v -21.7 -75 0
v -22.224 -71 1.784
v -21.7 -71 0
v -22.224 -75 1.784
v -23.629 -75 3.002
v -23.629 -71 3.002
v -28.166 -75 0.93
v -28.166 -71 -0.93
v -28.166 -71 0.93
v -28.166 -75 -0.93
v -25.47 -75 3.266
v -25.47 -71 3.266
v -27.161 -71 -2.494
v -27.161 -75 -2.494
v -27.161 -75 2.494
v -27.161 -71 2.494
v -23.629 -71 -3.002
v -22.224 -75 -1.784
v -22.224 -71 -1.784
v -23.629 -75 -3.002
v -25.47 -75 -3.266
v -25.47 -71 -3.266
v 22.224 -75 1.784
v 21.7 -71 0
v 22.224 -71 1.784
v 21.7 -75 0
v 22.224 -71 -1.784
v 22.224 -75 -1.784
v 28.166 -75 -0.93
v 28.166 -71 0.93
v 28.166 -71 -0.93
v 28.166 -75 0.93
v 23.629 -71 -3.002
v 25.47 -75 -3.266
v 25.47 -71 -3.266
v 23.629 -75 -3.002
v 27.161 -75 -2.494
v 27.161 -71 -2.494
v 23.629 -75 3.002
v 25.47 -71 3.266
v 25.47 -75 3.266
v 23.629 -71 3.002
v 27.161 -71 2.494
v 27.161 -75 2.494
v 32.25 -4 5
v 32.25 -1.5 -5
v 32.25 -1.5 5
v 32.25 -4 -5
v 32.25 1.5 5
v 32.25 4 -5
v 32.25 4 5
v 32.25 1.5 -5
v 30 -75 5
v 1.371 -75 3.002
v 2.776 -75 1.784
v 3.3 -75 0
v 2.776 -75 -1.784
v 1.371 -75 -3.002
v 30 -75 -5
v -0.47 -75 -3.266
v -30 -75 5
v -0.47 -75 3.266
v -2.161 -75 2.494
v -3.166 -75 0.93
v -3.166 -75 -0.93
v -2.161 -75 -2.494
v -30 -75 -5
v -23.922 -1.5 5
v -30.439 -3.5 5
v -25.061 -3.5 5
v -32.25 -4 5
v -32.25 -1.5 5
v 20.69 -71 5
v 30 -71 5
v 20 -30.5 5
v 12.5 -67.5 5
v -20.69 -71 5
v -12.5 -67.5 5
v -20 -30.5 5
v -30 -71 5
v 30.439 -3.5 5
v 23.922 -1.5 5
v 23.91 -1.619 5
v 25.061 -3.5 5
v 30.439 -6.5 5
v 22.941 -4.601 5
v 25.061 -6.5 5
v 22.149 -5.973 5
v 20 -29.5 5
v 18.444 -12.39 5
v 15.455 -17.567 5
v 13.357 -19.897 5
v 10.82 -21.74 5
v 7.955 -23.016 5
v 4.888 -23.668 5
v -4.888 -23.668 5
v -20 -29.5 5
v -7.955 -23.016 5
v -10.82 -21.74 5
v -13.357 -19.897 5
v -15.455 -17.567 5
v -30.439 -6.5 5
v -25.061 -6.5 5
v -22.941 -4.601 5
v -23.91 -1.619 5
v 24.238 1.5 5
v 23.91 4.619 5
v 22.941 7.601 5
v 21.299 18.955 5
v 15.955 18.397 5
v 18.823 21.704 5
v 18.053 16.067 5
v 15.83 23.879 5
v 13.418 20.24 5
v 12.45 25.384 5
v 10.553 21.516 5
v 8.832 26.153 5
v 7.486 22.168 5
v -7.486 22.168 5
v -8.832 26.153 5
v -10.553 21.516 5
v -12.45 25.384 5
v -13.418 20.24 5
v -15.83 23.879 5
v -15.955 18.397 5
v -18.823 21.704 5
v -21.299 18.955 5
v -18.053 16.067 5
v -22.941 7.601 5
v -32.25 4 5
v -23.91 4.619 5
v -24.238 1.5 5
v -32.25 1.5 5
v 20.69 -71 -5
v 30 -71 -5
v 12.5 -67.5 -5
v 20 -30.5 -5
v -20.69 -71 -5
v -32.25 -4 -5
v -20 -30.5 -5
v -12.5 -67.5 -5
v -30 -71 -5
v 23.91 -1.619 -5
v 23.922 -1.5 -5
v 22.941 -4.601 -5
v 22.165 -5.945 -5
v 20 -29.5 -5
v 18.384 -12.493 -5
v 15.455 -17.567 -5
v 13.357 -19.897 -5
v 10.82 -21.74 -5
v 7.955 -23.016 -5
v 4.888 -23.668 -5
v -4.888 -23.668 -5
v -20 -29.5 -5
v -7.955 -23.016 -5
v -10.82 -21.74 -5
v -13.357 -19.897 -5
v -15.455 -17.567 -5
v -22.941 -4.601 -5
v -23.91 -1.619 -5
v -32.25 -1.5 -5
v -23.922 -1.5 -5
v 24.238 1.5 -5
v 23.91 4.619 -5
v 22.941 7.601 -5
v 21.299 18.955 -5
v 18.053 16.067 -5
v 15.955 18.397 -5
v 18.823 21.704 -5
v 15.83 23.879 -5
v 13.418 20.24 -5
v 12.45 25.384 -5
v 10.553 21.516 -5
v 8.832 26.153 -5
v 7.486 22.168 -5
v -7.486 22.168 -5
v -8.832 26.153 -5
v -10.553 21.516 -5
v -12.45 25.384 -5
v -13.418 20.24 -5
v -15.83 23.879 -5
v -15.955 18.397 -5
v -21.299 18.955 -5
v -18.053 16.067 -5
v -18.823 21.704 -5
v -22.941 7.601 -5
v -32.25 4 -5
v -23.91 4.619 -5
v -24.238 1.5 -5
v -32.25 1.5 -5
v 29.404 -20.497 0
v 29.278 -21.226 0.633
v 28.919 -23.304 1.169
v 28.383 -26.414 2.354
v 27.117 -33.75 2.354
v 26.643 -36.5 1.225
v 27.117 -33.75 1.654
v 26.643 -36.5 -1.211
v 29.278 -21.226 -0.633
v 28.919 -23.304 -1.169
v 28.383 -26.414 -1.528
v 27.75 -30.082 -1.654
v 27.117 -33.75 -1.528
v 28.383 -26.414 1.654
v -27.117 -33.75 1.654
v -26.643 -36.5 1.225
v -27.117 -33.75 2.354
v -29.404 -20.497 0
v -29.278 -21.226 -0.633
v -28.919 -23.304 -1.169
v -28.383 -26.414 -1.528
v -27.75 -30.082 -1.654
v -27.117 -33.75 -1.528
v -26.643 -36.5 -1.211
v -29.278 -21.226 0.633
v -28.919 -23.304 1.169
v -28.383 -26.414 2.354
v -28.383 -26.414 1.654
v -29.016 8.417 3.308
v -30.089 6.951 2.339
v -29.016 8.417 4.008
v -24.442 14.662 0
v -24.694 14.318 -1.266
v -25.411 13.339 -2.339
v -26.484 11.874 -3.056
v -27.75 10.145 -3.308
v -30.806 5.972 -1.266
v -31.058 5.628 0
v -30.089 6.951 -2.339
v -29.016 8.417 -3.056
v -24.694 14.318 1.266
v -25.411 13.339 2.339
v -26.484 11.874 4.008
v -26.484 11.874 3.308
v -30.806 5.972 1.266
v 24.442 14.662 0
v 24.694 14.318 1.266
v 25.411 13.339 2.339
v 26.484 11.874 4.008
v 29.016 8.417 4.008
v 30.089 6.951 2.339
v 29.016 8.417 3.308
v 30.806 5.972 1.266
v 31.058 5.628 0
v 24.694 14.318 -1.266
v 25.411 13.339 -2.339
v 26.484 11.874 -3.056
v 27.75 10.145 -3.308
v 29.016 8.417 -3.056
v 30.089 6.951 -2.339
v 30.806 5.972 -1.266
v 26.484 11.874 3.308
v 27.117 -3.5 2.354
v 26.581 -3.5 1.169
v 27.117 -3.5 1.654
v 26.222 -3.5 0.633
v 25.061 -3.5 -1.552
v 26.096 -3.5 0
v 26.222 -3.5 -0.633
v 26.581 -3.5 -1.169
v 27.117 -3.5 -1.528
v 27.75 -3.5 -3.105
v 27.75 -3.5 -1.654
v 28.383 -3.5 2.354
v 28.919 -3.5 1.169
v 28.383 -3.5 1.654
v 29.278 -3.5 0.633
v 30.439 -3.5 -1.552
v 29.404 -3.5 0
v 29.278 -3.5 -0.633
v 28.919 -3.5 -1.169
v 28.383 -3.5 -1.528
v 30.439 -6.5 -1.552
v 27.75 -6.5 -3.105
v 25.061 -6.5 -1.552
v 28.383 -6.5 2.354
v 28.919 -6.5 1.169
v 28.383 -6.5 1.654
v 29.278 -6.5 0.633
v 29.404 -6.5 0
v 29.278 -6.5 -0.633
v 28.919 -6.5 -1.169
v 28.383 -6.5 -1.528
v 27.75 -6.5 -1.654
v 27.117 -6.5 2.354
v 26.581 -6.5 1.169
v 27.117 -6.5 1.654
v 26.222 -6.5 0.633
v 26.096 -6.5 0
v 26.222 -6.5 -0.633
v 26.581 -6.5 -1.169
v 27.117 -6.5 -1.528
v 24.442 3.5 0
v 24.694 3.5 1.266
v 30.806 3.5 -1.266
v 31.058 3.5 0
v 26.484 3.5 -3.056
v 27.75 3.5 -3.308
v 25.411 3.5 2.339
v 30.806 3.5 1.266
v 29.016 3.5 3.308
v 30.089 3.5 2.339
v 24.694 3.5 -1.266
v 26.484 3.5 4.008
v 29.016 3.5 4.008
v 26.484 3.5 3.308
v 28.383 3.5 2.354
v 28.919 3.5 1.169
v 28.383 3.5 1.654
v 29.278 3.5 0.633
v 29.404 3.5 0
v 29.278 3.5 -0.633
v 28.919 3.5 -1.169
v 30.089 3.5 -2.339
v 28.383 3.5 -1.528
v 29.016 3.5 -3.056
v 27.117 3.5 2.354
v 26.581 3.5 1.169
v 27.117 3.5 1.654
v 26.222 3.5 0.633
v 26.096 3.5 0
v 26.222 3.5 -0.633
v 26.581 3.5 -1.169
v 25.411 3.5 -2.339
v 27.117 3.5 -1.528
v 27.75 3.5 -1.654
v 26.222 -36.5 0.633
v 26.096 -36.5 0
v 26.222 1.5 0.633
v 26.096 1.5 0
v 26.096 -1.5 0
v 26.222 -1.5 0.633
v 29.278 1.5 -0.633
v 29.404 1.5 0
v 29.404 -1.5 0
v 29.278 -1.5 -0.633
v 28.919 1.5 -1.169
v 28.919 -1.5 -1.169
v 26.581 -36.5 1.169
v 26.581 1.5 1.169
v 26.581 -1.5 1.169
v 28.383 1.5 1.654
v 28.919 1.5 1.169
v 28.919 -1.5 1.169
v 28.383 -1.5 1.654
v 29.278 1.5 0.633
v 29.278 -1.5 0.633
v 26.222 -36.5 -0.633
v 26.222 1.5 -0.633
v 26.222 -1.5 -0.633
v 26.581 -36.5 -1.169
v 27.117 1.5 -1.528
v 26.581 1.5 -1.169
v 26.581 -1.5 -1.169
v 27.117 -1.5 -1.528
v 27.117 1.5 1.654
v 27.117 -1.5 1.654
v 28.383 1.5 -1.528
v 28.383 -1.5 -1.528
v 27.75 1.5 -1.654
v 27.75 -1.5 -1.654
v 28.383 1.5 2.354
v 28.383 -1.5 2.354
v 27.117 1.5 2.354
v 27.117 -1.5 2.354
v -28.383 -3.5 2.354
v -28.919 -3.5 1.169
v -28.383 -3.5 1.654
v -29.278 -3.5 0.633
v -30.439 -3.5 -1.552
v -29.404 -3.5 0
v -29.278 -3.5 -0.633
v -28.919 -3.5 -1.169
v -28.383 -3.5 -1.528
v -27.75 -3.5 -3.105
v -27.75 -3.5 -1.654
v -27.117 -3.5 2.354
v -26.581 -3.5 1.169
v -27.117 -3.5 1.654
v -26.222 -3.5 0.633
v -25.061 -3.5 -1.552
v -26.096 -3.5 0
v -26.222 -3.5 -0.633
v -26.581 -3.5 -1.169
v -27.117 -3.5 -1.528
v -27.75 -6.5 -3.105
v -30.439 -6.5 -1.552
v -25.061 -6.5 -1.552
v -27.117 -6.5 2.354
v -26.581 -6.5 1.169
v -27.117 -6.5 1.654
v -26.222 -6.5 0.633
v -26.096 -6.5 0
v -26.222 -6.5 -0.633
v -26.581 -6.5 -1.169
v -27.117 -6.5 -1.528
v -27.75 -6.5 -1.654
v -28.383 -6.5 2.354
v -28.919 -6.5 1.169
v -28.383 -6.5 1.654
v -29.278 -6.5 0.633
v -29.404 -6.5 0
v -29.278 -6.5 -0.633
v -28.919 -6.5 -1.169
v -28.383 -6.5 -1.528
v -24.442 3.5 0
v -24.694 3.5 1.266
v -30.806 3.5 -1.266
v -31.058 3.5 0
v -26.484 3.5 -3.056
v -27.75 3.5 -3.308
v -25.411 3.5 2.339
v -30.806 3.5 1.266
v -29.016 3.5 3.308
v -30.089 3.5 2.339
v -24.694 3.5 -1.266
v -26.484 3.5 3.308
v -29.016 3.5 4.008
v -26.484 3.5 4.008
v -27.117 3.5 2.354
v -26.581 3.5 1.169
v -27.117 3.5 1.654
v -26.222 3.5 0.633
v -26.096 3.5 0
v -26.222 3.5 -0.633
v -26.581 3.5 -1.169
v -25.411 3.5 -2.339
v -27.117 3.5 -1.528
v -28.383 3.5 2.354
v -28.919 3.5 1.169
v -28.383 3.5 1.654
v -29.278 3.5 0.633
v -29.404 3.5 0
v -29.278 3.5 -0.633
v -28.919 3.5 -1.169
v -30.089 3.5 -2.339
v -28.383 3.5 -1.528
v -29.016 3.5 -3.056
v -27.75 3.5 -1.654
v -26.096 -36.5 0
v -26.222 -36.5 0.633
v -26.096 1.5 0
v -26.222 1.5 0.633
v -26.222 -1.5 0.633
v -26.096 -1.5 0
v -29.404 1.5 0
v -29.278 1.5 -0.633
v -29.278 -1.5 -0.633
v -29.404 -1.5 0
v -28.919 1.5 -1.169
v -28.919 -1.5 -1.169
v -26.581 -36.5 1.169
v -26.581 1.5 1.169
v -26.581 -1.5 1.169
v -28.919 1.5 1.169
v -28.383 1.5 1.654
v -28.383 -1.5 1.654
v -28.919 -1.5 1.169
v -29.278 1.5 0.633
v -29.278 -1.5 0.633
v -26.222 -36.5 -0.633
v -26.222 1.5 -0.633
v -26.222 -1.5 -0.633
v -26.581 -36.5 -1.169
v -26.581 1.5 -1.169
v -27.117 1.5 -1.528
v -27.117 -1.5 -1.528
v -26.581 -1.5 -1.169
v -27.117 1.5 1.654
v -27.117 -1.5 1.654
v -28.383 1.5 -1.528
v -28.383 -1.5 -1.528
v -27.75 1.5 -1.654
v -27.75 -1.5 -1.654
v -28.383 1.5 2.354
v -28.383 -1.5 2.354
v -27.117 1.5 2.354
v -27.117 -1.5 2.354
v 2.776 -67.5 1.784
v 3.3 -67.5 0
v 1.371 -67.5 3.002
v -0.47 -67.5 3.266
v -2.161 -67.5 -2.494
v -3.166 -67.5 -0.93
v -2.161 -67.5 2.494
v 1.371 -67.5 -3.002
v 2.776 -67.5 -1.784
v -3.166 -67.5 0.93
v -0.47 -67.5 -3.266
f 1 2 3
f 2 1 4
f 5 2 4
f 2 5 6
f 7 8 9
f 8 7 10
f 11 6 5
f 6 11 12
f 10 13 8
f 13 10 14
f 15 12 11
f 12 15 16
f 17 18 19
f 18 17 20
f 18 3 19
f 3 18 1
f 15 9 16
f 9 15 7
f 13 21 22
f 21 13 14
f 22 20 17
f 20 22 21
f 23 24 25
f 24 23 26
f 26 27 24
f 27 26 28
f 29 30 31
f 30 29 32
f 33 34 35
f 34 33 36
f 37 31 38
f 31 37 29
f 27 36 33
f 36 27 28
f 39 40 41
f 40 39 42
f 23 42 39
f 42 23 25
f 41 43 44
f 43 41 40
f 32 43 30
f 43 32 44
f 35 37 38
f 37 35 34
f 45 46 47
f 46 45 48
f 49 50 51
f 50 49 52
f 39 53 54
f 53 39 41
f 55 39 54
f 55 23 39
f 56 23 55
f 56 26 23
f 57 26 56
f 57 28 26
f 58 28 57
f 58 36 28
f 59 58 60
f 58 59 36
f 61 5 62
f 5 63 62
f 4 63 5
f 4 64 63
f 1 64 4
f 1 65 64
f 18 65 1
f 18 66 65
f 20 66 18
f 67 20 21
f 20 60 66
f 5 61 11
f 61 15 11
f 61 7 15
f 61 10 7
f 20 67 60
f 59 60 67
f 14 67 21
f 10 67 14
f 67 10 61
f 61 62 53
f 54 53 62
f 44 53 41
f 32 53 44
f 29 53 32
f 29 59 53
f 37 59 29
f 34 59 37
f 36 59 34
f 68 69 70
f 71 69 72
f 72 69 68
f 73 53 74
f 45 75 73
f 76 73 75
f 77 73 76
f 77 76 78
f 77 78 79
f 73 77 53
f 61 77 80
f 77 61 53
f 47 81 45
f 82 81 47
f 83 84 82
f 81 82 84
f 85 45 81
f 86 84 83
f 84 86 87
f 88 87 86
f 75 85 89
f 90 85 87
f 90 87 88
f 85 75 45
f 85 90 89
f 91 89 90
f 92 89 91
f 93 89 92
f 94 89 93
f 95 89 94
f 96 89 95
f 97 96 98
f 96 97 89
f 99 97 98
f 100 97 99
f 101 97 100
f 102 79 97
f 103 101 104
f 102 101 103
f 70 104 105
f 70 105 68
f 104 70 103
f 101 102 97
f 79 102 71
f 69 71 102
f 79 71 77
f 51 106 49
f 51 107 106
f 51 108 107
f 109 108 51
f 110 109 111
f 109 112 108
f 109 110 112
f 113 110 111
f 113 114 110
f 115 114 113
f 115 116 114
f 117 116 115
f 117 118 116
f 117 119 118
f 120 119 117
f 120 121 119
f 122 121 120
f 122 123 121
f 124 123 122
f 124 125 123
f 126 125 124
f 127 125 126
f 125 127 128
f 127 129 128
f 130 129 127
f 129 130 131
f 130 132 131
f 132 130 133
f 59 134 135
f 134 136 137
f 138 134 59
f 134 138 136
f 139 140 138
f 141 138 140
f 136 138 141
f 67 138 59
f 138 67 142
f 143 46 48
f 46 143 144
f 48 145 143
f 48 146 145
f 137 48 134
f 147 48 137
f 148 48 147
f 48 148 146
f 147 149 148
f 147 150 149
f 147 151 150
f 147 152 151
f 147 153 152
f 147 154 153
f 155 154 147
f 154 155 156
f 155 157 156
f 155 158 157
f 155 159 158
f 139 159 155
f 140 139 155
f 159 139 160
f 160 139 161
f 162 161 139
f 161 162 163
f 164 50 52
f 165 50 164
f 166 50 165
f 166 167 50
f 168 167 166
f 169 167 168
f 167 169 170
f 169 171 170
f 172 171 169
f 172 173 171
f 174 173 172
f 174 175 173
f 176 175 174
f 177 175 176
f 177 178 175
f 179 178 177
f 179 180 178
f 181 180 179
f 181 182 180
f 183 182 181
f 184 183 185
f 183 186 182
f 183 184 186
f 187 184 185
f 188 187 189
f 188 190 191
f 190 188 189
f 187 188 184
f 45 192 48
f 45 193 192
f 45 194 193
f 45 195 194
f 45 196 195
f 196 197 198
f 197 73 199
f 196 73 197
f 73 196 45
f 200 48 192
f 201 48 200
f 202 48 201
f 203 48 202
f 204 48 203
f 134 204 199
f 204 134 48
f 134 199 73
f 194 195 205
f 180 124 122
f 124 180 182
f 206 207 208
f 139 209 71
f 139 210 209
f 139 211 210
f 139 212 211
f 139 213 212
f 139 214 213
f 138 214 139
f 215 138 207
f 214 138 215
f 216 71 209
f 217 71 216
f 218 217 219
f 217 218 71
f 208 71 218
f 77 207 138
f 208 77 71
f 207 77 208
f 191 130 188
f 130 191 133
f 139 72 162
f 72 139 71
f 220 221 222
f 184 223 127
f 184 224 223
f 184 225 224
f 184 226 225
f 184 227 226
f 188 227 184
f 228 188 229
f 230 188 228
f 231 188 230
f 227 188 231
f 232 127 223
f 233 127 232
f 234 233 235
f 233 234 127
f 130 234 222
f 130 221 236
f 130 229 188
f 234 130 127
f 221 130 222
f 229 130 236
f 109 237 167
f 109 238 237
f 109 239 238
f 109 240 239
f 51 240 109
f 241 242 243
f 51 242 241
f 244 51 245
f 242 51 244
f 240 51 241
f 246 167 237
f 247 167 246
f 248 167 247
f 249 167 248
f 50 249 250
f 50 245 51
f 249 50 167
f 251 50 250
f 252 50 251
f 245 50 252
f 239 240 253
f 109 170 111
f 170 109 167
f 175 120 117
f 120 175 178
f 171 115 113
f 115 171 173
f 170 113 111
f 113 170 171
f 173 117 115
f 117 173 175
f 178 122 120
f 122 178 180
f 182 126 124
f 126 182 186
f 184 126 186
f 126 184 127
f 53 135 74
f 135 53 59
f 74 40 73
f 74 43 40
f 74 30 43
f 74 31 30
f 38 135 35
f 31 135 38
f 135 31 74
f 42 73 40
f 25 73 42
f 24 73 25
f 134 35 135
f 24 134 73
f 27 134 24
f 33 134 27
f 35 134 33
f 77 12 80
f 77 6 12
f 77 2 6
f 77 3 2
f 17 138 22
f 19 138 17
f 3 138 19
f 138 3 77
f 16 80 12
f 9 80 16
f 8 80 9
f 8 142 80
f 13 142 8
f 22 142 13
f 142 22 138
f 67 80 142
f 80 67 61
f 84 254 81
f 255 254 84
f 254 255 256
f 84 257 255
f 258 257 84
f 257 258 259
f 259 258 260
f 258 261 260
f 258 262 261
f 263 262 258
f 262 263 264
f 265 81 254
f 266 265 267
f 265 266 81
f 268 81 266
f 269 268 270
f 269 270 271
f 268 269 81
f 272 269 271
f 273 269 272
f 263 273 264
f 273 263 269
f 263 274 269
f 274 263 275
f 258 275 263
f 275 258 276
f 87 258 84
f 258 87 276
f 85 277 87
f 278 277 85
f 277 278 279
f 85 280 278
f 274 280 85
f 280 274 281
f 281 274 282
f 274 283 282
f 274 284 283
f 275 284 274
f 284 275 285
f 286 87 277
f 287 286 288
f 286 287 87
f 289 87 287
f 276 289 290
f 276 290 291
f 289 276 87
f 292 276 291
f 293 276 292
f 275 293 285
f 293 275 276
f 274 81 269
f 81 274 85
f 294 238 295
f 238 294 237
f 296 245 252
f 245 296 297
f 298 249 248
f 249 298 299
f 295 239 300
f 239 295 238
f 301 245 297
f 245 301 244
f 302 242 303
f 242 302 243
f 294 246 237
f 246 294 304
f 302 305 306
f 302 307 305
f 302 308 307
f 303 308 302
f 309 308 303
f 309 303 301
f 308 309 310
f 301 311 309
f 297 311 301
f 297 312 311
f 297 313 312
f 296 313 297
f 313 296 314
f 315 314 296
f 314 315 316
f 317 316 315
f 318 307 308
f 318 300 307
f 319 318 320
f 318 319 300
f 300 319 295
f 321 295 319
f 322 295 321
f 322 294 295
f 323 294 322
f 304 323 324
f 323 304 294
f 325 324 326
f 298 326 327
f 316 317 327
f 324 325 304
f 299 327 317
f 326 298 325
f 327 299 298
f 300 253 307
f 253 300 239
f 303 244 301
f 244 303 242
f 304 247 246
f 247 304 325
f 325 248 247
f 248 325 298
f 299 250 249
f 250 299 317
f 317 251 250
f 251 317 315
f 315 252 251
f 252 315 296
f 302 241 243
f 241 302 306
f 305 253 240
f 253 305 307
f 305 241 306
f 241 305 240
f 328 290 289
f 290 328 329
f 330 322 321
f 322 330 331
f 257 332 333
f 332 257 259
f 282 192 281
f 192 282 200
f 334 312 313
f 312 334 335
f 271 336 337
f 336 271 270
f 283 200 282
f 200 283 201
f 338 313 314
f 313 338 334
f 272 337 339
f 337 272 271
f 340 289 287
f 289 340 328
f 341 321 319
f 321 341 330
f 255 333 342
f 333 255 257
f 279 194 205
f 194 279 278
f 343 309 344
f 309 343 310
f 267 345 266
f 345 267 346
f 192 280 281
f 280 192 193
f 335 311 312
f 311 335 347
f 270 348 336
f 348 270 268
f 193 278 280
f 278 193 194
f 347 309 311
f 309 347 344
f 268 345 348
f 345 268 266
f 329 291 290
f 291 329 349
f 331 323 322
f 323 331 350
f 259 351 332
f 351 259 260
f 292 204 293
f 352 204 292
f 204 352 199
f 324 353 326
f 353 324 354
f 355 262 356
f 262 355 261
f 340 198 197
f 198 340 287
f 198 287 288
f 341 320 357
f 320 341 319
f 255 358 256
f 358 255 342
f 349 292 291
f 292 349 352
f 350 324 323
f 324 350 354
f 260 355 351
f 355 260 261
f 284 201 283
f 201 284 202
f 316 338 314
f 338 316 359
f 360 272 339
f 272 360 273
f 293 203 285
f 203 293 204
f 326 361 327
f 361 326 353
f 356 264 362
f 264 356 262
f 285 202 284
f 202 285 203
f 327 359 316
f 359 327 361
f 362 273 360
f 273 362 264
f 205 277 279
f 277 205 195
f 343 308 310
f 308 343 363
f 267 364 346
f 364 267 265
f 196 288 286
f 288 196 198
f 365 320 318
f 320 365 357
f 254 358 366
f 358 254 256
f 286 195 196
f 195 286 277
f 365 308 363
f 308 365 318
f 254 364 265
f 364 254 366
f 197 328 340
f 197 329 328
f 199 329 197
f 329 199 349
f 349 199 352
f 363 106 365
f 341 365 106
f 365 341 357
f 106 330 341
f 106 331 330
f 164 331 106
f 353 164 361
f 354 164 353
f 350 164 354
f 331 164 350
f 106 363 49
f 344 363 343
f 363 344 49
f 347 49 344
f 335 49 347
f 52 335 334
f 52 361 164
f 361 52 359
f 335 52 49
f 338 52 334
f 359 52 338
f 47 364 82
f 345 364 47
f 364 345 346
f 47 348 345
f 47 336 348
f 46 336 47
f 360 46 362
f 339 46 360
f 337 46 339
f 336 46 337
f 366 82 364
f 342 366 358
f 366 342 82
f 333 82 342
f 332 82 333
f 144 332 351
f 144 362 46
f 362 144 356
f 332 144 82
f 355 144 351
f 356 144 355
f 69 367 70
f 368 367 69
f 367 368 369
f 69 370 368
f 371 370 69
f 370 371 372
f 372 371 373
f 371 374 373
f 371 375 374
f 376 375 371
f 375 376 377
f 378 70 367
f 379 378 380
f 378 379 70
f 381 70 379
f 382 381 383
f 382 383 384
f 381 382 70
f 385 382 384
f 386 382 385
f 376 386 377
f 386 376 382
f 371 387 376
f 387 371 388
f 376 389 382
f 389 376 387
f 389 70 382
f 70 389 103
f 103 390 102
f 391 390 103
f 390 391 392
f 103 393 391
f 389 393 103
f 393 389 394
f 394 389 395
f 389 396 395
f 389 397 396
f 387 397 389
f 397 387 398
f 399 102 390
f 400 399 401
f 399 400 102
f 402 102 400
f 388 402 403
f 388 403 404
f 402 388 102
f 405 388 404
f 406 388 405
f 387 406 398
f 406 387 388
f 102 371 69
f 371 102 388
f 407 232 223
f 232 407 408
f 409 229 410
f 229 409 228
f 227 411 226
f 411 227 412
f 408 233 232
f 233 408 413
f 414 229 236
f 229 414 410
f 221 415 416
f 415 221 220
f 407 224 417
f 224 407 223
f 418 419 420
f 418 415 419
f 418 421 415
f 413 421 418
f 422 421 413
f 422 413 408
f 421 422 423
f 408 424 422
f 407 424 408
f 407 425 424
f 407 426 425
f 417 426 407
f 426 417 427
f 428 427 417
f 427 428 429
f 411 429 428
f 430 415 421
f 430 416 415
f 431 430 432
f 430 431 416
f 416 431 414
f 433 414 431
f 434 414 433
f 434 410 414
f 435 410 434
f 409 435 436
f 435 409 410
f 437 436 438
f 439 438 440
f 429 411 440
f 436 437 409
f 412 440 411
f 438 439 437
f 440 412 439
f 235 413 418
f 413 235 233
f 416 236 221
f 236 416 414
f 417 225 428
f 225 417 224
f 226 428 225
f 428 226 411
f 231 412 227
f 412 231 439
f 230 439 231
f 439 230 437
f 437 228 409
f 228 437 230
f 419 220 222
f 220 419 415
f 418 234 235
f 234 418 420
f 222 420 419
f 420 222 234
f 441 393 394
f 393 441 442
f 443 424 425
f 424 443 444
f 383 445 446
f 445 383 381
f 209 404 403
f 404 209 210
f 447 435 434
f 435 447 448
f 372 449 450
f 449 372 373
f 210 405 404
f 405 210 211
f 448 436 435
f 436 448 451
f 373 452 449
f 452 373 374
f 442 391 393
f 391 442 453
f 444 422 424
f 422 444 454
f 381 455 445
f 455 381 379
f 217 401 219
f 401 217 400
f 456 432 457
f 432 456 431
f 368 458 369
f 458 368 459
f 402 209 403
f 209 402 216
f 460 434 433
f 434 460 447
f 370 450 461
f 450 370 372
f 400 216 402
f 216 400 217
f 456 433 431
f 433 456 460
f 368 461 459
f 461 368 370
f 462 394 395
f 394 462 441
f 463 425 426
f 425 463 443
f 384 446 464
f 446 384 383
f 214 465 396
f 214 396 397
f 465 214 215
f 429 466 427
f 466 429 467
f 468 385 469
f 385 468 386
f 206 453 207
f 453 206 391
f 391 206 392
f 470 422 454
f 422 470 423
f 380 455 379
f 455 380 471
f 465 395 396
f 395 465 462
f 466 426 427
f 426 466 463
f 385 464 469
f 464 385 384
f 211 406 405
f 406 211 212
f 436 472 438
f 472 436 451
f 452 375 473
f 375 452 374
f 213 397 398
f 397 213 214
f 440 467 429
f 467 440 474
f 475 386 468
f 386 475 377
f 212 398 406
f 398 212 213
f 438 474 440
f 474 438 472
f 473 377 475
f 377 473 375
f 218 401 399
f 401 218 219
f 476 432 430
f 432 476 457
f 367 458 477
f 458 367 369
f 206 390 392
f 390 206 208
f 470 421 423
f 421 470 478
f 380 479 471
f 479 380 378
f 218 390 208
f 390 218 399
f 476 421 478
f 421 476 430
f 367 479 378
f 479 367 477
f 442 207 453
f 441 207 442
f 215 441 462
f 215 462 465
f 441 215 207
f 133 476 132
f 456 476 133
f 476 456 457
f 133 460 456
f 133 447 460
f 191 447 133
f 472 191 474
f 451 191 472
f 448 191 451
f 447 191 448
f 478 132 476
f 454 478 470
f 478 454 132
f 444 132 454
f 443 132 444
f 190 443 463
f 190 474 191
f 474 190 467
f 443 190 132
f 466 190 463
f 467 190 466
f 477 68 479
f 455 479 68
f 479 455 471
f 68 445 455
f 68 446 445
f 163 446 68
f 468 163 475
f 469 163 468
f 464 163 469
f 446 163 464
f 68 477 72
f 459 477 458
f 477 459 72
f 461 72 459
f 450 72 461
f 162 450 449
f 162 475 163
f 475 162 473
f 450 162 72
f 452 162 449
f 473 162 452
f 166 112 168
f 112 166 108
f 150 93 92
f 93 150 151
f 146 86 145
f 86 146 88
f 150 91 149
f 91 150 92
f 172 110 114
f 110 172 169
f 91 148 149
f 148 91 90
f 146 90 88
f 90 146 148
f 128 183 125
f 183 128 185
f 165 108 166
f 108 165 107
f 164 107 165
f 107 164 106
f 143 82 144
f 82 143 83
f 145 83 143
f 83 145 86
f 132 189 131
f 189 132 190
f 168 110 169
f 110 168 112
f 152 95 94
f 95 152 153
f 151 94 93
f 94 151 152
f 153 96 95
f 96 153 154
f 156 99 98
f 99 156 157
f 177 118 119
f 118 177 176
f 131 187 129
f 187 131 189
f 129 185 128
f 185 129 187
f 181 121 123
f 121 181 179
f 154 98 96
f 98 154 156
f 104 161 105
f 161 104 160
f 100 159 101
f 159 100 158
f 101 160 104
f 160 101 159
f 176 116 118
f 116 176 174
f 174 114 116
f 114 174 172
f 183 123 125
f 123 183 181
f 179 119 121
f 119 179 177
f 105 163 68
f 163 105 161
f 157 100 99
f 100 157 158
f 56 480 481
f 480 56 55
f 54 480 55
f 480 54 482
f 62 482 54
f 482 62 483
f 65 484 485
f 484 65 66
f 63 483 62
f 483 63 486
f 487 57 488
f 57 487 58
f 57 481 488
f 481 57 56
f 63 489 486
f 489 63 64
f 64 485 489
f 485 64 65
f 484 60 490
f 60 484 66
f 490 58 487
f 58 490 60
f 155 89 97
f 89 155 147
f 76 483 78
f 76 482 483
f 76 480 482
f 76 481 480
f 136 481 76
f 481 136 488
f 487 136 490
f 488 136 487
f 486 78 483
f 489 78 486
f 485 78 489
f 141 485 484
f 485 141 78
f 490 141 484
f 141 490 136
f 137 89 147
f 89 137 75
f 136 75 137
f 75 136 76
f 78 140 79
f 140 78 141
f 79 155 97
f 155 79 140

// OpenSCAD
// Static mounts for a HeNe tube
// (c) R Bowman 2017, released under CERN open hardware license

use <utilities.scad>;

tube_d = 44.5; //diameter of the tube we want to clamp

module tube_cutout(d=tube_d, h=999, center=true, roc=15, dr=1.5){
    // Something between a hexagon and a circle...
    r = d/2 - roc;
    echo((r+dr - r*cos(60))/sin(60));
    hull(){
        for(a=[0,120,-120]) rotate(a) reflect([1,0,0]){
            translate([(r+dr - r*cos(60))/sin(60),tube_d/2-roc, 0]) cylinder(r=roc, h=h, center=center);
        }
    }
}

t = 10;
flat = t;

difference(){
    union(){
        hull(){
            s = (tube_d + 8)/tube_d;
            scale([s,s,1]) tube_cutout(d=tube_d, h=t);
            cube([tube_d + flat*2,8,t],center=true);
            translate([0,-75+1,0]) cube([40,2,t], center=true);
        }
        hull() reflect([1,0,0]){
            translate([-25-t/2,-75,-t/2]) cube([t,4,t]);//rotate([90,0,0]) cylinder(d=t, h=4);
        }
    }
    
    tube_cutout();
    reflect([1,0,0]) translate([tube_d/2+flat/2+0.5, 0,0]) pinch_y(3, top_access=true, screw_l=20);
    reflect([1,0,0]) translate([-25,-75,0]) rotate([90,0,0]) cylinder(d=6.6, h=10, center=true);
    translate([0,-75,0]) rotate([90,0,0]) cylinder(d=6.6, h=20, center=true);
    
    hull(){
        translate([0,-65,0]) cube([25,5,999],center=true);
        translate([0,-30,0]) cube([40,1,999],center=true);
    }
}
